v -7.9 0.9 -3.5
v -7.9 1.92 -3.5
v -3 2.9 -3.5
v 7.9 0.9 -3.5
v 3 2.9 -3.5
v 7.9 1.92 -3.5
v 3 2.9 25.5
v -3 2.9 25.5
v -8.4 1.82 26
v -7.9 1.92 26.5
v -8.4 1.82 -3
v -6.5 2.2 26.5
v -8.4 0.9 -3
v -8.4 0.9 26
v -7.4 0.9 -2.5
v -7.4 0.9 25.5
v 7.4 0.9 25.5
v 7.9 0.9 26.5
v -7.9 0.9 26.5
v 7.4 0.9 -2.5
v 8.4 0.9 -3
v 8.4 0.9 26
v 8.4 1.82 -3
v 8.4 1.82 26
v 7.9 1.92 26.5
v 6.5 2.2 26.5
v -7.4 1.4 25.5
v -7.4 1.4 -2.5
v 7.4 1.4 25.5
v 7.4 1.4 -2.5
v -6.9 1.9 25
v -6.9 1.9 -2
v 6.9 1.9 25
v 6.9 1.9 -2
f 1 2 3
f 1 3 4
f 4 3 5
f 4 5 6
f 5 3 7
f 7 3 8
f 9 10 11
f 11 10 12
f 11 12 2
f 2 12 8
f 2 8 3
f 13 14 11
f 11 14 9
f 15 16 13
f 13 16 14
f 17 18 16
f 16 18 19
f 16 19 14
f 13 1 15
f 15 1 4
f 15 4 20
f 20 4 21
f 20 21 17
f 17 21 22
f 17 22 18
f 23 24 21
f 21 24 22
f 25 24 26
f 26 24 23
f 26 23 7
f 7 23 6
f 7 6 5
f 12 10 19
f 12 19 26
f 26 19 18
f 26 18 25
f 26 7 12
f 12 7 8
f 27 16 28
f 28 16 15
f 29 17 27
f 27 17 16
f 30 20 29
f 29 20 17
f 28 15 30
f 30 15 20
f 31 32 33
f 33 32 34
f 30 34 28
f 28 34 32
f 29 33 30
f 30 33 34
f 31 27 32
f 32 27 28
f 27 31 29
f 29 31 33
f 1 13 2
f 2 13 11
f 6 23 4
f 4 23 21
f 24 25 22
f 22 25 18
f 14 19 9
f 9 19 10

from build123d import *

# Parameters (mm, degrees)
EXTRUDE_1_DEPTH          = 26.5
EXTRUDE_1_DEPTH_BACK     = 3.5
CUT_EXTRUDE_1_DEPTH      = 28.950313057
CUT_EXTRUDE_1_DEPTH_BACK = 28.950313057
SKETCH_3_W               = 14.8
SKETCH_3_H               = 28
CUT_EXTRUDE_2_DEPTH      = 1
CHAMFER_1_SIZE           = 0.5
CHAMFER_2_SIZE           = 0.5


with BuildPart() as part:
    # Эскиз1 → Бобышка-Вытянуть1 (new, two sides: drawn at the far end of the back side and taken through both)
    with BuildSketch(Plane.XY.offset(-EXTRUDE_1_DEPTH_BACK)):
        Polygon((-2.439262184, 0.9), (2.439262184, 0.9), (8.4, 0.9), (8.4, 1.8), (8.4, 1.82), (3, 2.9), (-3, 2.9), (-8.4, 1.82), (-8.4, 1.8), (-8.4, 0.9), align=None)
    extrude(amount=EXTRUDE_1_DEPTH + EXTRUDE_1_DEPTH_BACK)

    # Эскиз2 → Вырез-Вытянуть1 (cut, two sides: drawn at the far end of the back side and taken through both)
    with BuildSketch(Plane(origin=(0, 0, 0), x_dir=(0, 0, -1), z_dir=(1, 0, 0)).offset(-CUT_EXTRUDE_1_DEPTH_BACK)):
        Polygon((-25.5, 2.9), (-26.5, 2.9), (-26.5, 2.2), align=None)
    extrude(amount=CUT_EXTRUDE_1_DEPTH + CUT_EXTRUDE_1_DEPTH_BACK, mode=Mode.SUBTRACT)

    # Эскиз3 → Вырез-Вытянуть2 (cut)
    with BuildSketch(Plane.XZ.offset(-0.9)):
        with Locations((0, 11.5)):
            Rectangle(SKETCH_3_W, SKETCH_3_H)
    extrude(amount=-CUT_EXTRUDE_2_DEPTH, mode=Mode.SUBTRACT)

    # Фаска1
    chamfer_1_edges = [part.edges().sort_by_distance(p)[0] for p in [
        (-7.4, 1.9, 11.5),
        (0, 1.9, 25.5),
        (7.4, 1.9, 11.5),
        (0, 1.9, -2.5),
    ]]
    chamfer(chamfer_1_edges, length=CHAMFER_1_SIZE)

    # Фаска2
    chamfer_2_edges = [part.edges().sort_by_distance(p)[0] for p in [
        (8.4, 1.36, 26.5),
        (-8.4, 1.36, 26.5),
        (-8.4, 1.36, -3.5),
        (8.4, 1.36, -3.5),
    ]]
    chamfer(chamfer_2_edges, length=CHAMFER_2_SIZE)


solid = part.part
